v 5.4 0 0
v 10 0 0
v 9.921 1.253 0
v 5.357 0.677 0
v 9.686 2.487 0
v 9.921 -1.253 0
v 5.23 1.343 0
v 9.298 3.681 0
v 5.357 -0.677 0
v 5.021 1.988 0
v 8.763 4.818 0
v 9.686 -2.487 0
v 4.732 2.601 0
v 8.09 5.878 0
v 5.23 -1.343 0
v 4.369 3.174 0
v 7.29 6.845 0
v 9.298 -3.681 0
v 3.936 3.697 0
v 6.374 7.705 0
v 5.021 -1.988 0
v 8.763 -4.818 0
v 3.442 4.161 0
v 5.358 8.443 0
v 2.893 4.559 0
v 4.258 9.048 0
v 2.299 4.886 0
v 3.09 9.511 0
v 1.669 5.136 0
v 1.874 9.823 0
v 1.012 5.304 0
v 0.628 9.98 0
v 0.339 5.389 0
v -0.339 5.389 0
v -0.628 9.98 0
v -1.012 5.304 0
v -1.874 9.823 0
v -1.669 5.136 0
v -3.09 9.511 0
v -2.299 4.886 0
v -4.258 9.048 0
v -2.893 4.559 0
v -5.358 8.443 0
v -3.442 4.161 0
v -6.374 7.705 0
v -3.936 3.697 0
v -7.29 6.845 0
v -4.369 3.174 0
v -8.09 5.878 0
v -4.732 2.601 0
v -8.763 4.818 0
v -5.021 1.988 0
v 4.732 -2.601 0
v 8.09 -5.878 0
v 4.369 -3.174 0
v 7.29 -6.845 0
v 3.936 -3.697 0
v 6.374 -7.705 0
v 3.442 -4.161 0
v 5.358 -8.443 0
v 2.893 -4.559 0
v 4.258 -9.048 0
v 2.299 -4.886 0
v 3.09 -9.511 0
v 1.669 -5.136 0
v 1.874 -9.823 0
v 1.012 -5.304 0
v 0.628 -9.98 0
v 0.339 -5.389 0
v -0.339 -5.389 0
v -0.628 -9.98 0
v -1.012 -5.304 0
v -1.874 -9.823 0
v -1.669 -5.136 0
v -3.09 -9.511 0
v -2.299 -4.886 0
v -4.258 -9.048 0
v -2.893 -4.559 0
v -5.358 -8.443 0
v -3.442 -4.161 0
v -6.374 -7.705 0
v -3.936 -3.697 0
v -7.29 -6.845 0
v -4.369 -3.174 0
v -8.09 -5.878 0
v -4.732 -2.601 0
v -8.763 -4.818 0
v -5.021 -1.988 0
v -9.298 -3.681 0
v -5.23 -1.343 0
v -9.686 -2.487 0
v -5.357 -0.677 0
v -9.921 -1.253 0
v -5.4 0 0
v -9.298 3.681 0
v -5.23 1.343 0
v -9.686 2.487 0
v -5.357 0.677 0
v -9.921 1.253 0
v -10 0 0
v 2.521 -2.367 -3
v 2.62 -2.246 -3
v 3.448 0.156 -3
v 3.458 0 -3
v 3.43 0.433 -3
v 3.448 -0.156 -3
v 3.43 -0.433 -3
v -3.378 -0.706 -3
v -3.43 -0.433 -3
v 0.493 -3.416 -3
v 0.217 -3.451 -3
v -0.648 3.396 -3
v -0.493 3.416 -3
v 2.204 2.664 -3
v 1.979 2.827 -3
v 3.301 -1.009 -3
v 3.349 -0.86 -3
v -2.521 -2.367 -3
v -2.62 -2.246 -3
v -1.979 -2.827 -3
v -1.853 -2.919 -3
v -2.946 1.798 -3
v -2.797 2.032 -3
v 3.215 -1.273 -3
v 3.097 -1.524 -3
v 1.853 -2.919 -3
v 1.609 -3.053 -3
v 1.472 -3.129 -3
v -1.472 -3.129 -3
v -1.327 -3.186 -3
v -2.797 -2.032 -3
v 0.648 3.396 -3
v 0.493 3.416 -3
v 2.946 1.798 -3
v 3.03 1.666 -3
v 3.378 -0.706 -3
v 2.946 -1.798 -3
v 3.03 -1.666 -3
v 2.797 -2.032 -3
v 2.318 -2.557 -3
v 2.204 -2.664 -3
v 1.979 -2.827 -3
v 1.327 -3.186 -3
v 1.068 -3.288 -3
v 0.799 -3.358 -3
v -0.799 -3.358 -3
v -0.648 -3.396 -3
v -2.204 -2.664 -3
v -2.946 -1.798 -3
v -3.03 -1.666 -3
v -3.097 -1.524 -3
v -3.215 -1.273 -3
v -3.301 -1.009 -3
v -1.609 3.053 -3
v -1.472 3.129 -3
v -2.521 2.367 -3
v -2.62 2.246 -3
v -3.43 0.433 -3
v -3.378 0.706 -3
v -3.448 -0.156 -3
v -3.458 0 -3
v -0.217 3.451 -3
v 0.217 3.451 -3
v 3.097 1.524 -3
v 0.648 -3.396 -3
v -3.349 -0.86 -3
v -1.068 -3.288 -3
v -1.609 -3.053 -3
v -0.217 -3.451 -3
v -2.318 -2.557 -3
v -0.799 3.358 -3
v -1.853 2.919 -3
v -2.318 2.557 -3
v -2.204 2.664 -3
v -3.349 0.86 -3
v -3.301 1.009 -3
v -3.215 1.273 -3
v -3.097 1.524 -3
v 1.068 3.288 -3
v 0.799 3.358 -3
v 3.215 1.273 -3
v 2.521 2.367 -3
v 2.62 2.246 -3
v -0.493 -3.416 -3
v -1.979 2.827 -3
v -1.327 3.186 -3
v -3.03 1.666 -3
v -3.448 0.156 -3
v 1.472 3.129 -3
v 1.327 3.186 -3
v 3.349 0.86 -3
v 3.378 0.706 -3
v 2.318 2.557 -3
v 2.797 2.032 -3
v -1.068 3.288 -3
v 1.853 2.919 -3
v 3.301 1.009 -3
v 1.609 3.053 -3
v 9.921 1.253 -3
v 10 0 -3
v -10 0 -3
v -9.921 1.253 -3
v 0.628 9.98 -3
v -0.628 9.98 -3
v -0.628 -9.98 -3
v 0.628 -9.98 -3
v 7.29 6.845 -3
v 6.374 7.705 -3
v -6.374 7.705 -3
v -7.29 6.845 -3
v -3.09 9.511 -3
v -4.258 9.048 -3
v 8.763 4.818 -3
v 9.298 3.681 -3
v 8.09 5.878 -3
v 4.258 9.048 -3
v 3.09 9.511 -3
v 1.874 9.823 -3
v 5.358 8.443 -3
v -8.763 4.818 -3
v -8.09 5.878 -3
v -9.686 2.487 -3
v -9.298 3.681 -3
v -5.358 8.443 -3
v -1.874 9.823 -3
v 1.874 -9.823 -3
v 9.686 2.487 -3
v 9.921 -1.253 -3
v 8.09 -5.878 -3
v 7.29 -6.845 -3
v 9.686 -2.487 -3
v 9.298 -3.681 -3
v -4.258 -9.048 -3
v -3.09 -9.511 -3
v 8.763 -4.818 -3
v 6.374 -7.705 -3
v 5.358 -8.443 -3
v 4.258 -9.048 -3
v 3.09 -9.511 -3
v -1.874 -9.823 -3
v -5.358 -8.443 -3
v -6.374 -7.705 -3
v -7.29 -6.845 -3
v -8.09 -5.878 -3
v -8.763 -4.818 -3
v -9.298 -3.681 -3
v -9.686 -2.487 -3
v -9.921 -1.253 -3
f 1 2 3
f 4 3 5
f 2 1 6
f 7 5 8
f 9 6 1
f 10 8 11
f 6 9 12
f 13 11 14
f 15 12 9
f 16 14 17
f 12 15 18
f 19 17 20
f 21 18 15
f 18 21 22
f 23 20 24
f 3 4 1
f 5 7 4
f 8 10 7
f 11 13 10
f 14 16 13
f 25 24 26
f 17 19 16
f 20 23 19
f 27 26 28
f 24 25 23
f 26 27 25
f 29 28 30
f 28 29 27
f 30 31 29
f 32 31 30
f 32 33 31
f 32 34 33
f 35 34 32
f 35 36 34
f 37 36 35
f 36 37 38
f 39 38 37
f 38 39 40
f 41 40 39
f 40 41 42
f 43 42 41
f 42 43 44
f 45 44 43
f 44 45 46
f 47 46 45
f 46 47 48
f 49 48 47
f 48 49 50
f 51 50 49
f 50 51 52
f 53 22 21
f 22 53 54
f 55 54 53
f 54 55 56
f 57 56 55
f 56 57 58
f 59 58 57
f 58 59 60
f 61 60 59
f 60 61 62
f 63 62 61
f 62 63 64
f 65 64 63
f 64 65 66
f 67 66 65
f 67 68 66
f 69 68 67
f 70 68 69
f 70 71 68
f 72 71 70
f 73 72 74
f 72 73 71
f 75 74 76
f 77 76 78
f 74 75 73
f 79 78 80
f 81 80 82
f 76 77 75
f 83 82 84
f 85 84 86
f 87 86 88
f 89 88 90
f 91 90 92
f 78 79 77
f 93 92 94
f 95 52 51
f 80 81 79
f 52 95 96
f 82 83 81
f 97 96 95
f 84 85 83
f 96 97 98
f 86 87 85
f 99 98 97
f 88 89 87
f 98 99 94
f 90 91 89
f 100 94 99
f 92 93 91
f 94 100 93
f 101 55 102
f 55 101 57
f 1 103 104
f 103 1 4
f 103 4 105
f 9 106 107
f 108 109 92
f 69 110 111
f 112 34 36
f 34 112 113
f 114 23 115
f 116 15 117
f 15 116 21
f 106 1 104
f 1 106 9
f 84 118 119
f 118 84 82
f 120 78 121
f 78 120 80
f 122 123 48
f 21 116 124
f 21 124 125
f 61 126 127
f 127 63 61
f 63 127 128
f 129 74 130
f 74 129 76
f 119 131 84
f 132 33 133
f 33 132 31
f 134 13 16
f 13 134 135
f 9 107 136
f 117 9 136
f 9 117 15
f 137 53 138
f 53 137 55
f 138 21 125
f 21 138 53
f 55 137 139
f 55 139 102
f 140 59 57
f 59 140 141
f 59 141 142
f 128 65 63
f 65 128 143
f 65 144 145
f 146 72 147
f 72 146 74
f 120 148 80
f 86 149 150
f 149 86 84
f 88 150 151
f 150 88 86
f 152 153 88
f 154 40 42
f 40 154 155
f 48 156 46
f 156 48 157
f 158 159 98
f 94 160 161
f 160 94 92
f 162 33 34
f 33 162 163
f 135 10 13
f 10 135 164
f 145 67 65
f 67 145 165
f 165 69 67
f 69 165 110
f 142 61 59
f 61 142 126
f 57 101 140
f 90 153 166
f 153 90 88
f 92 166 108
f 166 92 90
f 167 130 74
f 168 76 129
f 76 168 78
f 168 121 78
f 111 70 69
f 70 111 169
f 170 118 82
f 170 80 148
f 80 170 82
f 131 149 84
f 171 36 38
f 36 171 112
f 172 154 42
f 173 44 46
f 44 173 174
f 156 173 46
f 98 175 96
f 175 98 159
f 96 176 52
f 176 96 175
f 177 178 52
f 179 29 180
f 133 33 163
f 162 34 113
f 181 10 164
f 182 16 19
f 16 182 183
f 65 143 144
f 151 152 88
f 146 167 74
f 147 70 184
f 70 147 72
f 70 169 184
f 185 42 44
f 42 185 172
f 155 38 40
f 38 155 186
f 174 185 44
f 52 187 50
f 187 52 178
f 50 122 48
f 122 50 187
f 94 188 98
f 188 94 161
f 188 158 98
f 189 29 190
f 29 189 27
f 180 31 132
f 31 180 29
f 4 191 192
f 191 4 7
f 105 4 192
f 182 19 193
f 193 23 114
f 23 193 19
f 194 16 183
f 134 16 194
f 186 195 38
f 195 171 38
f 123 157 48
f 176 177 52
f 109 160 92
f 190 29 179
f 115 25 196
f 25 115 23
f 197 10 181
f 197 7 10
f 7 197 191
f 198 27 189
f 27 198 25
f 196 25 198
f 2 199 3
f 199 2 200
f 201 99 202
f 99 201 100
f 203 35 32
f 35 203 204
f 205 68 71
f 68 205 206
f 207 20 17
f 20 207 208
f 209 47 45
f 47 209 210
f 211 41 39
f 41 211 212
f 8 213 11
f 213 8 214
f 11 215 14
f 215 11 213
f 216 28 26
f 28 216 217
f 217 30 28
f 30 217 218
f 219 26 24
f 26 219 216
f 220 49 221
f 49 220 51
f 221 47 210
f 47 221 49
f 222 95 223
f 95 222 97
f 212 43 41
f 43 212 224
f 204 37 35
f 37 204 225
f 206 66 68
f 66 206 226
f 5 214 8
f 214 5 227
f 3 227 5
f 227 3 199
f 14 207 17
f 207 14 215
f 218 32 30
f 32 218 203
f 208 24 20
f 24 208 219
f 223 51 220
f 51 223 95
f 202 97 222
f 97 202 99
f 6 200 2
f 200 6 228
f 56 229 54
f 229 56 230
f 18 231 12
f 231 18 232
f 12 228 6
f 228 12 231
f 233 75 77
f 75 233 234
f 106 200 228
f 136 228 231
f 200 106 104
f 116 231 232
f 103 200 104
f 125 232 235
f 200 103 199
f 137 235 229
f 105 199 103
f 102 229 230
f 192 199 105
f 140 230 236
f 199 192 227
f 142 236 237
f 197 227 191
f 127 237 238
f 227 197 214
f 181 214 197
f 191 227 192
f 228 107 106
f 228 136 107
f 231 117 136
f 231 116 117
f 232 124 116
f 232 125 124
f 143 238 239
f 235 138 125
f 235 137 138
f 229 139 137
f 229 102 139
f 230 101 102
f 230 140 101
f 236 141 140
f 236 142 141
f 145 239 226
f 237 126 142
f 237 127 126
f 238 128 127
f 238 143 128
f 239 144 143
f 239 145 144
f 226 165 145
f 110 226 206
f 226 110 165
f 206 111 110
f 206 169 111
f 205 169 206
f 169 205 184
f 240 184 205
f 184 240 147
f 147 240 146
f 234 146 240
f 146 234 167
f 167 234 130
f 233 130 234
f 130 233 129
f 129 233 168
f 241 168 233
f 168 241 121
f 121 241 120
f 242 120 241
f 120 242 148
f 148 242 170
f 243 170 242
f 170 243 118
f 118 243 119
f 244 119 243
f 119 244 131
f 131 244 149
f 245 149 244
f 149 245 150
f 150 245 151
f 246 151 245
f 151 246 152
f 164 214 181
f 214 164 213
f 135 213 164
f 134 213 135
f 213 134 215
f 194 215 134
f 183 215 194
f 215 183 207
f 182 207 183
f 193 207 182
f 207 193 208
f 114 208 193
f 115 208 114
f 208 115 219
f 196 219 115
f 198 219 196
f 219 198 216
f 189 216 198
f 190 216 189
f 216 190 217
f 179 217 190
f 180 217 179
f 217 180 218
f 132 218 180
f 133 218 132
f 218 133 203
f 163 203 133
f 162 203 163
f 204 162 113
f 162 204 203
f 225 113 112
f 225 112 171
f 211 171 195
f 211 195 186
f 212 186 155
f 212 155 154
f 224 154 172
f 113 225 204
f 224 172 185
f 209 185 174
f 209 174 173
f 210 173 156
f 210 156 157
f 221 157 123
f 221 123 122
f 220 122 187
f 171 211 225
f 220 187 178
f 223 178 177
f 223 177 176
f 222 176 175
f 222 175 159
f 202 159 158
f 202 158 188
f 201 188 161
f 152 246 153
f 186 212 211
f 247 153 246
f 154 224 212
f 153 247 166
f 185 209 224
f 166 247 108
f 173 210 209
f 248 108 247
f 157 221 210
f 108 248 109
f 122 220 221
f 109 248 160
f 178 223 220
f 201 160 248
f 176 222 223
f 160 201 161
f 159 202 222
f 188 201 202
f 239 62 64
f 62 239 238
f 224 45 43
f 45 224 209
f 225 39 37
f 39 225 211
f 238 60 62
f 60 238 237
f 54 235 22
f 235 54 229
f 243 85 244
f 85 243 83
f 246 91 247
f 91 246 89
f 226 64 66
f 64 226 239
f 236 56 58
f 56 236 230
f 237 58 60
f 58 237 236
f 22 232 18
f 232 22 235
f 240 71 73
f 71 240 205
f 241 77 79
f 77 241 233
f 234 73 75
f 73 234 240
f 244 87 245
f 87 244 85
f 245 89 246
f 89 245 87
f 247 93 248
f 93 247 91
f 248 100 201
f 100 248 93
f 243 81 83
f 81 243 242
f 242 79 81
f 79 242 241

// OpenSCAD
$fn = 50;


difference() {
	union() {
		translate(v = [0, 0, -3.0000000000]) {
			cylinder(h = 3, r = 10.0000000000);
		}
	}
	union() {
		translate(v = [0, 0, 0]) {
			rotate(a = [0, 0, 0]) {
				difference() {
					union() {
						#translate(v = [0, 0, -3.0000000000]) {
							cylinder(h = 3, r = 2.6000000000);
						}
						#translate(v = [0, 0, -3.9000000000]) {
							cylinder(h = 3.9000000000, r = 10.0000000000, r1 = 2.8750000000, r2 = 5.4000000000);
						}
						#translate(v = [0, 0, -3.0000000000]) {
							cylinder(h = 3, r = 2.8750000000);
						}
						#translate(v = [0, 0, -3.0000000000]) {
							cylinder(h = 3, r = 2.6000000000);
						}
					}
					union();
				}
			}
		}
	}
}
